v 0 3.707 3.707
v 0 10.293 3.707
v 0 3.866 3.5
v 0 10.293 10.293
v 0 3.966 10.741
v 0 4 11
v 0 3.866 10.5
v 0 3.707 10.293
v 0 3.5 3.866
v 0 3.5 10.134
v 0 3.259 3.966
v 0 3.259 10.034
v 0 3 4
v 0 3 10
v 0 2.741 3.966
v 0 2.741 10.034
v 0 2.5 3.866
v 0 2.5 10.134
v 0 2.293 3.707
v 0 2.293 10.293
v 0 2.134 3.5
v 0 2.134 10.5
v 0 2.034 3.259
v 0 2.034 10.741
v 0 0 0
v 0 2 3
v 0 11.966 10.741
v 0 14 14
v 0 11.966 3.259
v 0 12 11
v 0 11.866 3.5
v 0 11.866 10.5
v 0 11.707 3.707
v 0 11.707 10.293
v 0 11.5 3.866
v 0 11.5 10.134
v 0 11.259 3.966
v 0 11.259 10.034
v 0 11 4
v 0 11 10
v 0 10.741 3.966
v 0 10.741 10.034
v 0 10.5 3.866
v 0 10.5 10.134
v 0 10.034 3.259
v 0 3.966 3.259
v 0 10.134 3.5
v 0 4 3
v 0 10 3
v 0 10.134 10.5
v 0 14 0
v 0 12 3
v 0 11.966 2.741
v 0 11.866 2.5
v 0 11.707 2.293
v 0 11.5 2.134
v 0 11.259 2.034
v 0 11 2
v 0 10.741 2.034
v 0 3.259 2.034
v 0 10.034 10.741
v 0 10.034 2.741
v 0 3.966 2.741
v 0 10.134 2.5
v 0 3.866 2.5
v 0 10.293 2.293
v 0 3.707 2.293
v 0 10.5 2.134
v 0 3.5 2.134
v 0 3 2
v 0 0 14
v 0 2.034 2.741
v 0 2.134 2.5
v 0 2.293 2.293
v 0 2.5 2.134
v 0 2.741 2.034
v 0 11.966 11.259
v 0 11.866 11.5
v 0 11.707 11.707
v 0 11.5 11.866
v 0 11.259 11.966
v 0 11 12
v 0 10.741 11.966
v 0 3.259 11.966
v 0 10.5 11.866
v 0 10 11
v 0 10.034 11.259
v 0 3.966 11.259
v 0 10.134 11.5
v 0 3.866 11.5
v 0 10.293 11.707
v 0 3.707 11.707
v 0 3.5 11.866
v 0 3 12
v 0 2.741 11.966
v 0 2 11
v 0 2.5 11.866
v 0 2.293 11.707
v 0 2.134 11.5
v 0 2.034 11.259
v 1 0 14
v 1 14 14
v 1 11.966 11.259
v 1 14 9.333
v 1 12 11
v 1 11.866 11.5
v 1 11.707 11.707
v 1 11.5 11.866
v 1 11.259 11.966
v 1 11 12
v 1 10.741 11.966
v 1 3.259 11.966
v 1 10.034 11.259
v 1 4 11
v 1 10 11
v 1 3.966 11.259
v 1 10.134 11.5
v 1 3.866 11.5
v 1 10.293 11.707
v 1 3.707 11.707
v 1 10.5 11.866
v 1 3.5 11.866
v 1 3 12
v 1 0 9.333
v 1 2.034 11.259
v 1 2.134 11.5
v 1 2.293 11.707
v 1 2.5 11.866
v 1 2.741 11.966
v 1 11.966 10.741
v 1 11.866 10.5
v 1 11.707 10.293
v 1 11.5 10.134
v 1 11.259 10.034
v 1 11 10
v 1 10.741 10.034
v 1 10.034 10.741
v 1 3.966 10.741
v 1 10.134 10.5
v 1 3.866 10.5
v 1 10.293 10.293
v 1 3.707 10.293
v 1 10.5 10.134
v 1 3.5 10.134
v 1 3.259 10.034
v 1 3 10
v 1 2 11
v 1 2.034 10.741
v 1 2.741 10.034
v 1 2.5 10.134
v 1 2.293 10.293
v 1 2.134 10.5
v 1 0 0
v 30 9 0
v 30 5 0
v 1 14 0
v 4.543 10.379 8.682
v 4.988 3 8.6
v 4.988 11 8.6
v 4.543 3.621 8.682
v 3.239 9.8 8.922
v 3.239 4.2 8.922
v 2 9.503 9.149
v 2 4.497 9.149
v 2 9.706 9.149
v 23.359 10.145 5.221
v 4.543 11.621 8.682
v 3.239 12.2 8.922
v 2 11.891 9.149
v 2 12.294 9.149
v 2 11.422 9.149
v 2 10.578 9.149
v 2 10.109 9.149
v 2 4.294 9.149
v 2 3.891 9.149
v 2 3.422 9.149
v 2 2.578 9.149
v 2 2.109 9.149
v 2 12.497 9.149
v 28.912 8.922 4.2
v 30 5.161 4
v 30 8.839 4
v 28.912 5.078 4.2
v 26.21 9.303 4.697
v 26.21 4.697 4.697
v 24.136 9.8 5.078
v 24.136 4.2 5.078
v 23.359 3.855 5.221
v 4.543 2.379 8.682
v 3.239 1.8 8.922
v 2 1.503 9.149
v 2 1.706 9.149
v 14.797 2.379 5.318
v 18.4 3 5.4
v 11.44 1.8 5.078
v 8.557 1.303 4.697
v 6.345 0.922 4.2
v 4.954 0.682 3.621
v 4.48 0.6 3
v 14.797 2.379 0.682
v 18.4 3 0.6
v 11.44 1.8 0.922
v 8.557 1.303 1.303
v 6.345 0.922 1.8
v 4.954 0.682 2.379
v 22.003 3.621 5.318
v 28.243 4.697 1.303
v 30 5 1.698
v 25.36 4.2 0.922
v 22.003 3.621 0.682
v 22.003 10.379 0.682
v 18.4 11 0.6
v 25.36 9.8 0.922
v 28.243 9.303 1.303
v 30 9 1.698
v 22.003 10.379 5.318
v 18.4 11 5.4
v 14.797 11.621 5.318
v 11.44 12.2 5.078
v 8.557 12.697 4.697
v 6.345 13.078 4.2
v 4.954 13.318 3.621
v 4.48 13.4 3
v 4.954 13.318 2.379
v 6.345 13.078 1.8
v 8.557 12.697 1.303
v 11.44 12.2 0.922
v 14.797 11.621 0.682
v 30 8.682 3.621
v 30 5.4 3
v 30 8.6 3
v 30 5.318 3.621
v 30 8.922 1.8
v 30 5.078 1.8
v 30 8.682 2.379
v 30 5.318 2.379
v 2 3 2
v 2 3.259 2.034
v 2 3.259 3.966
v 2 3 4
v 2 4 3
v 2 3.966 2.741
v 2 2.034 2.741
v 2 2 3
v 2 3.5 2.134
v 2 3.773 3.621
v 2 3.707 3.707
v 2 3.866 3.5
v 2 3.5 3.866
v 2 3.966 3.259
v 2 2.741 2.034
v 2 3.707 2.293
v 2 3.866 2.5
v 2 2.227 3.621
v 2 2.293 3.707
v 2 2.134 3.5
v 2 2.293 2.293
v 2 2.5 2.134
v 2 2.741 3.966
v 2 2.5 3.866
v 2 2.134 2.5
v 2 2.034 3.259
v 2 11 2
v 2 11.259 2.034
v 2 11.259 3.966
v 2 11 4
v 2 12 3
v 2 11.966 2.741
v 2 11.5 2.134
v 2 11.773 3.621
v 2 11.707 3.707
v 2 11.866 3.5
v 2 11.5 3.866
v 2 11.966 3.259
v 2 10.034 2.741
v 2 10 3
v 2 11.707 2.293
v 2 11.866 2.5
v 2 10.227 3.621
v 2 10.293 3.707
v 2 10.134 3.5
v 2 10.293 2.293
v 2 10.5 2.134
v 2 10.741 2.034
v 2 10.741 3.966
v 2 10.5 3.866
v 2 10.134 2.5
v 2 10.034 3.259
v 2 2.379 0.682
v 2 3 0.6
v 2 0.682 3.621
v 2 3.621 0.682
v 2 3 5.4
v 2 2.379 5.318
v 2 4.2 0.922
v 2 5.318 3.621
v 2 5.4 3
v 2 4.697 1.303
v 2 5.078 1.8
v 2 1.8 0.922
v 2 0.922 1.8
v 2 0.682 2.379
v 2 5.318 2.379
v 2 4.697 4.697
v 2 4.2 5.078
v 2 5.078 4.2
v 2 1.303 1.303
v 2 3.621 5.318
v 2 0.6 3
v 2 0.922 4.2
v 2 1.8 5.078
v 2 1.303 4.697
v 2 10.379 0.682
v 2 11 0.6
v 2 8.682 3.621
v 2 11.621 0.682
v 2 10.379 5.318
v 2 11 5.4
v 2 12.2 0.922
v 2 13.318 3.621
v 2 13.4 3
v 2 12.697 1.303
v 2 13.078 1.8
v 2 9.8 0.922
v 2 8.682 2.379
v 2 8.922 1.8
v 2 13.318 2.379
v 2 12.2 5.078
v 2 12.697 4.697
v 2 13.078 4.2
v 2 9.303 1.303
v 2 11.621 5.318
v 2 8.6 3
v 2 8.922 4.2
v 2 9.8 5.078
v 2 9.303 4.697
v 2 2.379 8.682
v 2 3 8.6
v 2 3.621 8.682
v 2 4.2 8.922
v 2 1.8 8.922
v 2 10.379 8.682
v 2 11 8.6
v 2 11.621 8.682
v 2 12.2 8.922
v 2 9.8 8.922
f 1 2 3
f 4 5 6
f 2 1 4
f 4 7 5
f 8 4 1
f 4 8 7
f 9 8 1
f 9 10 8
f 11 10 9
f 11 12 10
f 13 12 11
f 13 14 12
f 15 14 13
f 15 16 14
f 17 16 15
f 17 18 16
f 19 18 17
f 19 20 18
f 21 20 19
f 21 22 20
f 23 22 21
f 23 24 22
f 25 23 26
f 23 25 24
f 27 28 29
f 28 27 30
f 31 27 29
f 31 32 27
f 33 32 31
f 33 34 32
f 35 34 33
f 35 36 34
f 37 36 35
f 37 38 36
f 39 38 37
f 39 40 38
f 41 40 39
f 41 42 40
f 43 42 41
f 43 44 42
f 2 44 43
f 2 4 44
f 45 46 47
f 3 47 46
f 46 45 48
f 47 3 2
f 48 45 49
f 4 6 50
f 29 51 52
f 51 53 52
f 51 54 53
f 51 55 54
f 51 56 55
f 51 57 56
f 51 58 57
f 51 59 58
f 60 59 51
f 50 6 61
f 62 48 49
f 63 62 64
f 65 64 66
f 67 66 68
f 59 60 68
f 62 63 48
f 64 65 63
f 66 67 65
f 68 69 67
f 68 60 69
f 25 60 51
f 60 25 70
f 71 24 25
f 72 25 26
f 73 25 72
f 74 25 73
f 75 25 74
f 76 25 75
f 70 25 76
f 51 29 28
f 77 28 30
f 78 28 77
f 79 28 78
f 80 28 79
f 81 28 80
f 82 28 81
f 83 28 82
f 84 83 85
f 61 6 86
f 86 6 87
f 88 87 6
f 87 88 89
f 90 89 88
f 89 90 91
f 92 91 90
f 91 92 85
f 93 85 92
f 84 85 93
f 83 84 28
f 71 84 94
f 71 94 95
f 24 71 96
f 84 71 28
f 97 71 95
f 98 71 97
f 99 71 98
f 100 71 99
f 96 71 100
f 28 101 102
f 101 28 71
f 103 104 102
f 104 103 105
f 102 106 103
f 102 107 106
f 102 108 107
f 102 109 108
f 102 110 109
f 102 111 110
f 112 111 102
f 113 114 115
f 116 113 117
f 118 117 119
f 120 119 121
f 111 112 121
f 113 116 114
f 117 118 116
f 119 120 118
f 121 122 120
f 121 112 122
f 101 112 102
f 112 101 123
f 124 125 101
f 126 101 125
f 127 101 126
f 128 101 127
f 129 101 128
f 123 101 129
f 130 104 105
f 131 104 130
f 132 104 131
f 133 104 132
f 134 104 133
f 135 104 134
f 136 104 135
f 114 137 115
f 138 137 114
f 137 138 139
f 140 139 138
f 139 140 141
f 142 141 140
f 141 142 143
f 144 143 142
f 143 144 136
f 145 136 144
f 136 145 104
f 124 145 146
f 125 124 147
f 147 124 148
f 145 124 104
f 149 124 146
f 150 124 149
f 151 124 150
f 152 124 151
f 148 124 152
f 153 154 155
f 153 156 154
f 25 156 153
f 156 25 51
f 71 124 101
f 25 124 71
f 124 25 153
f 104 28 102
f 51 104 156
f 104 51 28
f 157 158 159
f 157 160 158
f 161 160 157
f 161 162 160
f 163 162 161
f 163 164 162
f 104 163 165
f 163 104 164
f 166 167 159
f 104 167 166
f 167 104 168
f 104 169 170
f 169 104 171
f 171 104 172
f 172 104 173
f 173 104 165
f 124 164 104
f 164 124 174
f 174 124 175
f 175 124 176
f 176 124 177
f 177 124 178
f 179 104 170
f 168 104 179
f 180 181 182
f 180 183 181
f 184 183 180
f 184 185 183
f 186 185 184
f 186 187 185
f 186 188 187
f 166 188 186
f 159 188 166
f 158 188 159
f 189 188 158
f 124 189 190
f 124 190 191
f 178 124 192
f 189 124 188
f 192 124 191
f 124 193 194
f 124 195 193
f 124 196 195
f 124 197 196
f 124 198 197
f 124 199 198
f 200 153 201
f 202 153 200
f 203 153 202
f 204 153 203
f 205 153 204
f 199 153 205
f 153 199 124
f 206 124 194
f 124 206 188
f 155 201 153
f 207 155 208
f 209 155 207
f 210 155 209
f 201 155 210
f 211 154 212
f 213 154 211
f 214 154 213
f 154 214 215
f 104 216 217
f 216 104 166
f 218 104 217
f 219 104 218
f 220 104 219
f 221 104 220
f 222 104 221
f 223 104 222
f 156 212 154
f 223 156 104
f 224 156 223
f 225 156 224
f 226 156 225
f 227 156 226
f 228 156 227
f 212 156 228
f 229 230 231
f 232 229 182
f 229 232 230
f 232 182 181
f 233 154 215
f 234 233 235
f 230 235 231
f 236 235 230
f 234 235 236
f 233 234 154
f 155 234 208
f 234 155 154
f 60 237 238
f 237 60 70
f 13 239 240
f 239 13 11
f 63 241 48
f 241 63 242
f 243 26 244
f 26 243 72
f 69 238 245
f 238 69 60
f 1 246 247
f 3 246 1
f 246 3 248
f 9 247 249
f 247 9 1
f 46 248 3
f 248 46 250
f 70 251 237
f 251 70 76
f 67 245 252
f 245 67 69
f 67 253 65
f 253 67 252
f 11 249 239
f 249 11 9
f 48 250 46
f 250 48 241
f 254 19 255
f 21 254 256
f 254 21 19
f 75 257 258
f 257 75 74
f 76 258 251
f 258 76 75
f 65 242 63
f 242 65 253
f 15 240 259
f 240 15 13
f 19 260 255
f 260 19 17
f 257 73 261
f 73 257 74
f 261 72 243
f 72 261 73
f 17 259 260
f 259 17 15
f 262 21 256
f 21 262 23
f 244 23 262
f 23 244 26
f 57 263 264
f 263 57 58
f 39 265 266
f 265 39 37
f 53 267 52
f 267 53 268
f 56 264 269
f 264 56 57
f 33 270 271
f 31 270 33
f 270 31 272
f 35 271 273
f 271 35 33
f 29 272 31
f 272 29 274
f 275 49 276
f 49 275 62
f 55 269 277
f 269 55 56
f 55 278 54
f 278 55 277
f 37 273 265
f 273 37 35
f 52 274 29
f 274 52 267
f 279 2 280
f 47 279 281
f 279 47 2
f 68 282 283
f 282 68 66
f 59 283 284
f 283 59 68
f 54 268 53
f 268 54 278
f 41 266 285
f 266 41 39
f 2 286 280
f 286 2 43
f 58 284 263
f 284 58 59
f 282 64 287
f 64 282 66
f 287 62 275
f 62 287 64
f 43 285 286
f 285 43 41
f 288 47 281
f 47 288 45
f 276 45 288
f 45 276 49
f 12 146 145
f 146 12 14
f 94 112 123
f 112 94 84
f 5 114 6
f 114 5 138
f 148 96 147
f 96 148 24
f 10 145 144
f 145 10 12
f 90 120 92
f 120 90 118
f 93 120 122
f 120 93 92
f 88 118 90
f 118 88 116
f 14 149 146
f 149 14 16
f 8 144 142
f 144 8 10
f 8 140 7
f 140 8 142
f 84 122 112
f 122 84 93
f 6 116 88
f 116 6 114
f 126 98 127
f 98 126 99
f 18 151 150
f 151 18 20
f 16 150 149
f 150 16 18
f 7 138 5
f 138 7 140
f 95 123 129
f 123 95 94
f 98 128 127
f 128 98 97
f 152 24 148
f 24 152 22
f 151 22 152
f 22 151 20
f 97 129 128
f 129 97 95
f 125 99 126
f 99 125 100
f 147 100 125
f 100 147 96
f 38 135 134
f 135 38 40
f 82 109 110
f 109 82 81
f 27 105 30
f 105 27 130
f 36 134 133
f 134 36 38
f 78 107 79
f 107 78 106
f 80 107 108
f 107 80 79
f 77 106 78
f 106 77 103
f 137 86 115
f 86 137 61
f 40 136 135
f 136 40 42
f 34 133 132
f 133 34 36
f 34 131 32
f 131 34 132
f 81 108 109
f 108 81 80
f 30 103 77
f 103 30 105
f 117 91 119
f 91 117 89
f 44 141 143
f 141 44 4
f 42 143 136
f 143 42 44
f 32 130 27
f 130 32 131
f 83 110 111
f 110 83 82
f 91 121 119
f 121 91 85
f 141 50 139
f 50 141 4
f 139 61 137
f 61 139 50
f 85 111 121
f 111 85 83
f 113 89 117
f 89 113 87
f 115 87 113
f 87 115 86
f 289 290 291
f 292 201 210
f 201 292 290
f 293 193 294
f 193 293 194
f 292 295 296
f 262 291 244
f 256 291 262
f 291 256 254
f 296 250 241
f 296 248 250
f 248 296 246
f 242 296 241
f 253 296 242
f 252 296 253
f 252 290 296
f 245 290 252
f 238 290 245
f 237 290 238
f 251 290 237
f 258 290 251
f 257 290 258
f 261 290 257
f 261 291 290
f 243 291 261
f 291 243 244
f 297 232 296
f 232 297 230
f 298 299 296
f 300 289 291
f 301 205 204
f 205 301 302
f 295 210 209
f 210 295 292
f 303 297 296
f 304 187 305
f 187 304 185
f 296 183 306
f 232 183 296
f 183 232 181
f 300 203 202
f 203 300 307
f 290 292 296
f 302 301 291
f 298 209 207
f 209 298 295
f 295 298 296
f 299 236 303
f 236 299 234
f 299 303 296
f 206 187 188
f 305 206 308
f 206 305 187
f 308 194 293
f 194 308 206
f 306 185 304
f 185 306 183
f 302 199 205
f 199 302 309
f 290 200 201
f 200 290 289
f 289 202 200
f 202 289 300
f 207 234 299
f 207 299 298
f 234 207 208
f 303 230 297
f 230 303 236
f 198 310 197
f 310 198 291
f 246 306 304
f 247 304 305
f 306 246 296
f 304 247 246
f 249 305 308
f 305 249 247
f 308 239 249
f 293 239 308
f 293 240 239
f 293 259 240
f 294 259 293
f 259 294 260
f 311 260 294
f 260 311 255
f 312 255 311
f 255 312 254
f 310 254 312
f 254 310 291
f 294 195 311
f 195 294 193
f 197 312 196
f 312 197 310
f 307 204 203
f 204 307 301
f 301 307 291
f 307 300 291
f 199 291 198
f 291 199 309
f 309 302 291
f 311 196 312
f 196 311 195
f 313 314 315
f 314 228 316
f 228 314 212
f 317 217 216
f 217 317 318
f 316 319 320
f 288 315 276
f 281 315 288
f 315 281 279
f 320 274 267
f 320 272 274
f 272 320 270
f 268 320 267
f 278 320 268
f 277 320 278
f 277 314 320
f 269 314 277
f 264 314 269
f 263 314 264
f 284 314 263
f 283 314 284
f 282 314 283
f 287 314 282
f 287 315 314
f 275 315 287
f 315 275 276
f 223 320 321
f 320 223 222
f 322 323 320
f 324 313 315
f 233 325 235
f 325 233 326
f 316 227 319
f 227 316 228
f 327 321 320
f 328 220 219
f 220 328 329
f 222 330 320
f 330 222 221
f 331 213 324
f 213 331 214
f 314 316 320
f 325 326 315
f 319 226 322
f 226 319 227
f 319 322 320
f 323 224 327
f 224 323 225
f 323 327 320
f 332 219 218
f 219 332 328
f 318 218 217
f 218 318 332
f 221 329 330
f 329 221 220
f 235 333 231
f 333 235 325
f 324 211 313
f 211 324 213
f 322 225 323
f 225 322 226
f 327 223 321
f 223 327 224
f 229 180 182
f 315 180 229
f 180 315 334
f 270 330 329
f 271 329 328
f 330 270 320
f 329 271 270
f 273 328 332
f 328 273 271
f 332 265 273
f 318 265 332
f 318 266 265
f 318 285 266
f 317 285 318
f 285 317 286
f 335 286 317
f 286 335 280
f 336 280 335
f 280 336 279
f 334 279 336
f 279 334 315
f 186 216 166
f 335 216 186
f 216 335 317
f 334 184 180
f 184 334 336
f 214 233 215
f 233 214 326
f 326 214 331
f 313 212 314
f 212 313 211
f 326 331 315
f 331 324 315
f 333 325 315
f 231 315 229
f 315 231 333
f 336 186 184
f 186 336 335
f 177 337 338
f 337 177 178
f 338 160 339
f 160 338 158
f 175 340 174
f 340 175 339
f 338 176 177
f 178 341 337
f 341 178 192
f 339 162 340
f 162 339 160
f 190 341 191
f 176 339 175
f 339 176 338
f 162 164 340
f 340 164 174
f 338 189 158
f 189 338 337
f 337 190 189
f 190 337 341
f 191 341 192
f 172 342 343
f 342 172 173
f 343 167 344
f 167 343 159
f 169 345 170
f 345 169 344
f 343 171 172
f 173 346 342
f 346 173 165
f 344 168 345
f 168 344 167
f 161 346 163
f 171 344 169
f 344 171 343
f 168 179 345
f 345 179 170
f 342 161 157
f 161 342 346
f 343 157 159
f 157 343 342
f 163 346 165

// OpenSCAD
// file: servo_9g.scad
//servo_9g(false);

//use<hub_mount.scad>
use<MCAD/nuts_and_bolts.scad>
$fn = 24;
//x,y,z => l,w,h
servo_l         = 12;
servo_w         = 23;
body_h          = 23;

servo_h         = 27; //not used in code

wing_w          = 5;
wing_h          = 2.33;
wing_place      = 16.2;   
hole_offset     = 2.5;    //not checked
mount_hole_r    = 2/2;
mount_slot      = 1;

servo_ww        = servo_w+wing_w*2; // not used in code but is handy number

hub_h           = 4;
small_hub_r     = 5.68/2;  
horn_r          = 4.66/2;
horn_h          = 3;

wire_l          = 4;
wire_w          = 1.5;
wire_h          = 1;
wire_place      = 4.8;

servo_full_w    = servo_w+wing_w*2;
module servo_9g(hole=true) {
    //if a differnce is applied and you want 
    if(!hole) {
        translate([servo_l/2,-hole_offset,-10]) 
        cylinder(r=mount_hole_r,h=40);
        translate([servo_l/2,hole_offset+servo_w,-10]) 
        cylinder(r=mount_hole_r,h=40);
        /*translate([servo_l/2,servo_l/2,-15])
        cylinder(r=1.5,h=15);*/
        
        /*translate([servo_l/2,servo_l/2,body_h+hub_h+5])
        #hub_mount();*/
    }
    color("white") translate([servo_l/2,servo_l/2,body_h+hub_h])
    cylinder(r=horn_r,h=horn_h);
    
    color("deepSkyBlue",.7) 
    union() {
        cube([servo_l,servo_w,body_h]);
        translate([servo_l/2,servo_l/2,body_h])
        cylinder(r=servo_l/2,h=hub_h);
        translate([servo_l/2,servo_l+small_hub_r/2,body_h])
        cylinder(r=small_hub_r,h=hub_h);
        
        
        translate([0,servo_w,wing_place])
        difference() {
            cube([servo_l,wing_w,wing_h]);
            translate([servo_l/2,hole_offset,0]) 
            cylinder(r=mount_hole_r,h=5);
            translate([servo_l/2-mount_slot/2,hole_offset+mount_hole_r/2,0])
            if(hole) cube([mount_slot,4,3]);
        }
        translate([servo_l,0,wing_place])
        rotate([0,0,180])
        difference() {
            cube([servo_l,wing_w,wing_h]);
            translate([servo_l/2,hole_offset,0]) 
            cylinder(r=mount_hole_r,h=5);
            translate([servo_l/2-mount_slot/2,hole_offset+mount_hole_r/2,0])
            if(hole) cube([mount_slot,4,3]);
        }
    }
    
    /*color("brown") translate([(servo_l-wire_l)/2,-wire_w,wire_place])
    cube([wire_l,wire_w,wire_h]);*/
}
// main file
include<servo_9g.scad>

mount_y = servo_l+2;

foot_x = 30;
foot_y = 4;
foot_z = 4;

difference()
{
	union() 
	{
		cube([1,mount_y,mount_y]);
		hull()
		{
			cube([1,mount_y,mount_y*2/3]);
			
			translate([foot_x/2,mount_y/2, foot_z/2])
				cube([foot_x, foot_y, foot_z], center = true);
		}
	}

	translate([-1,3,3])
    rotate([0,90,0])
    cylinder(r=1, h=50);
    translate([-1,mount_y-3,3])
    rotate([0,90,0])
    cylinder(r=1, h=50);
    translate([-1,3,3+8])
    rotate([0,90,0])
    cylinder(r=1, h=50);
    translate([-1,mount_y-3,3+8])
    rotate([0,90,0])
    cylinder(r=1, h=50);
	
	rrr = 2.4;
	translate([2,3,3])
    rotate([0,90,0])
    cylinder(r=rrr, h=50);
    translate([2,mount_y-3,3])
    rotate([0,90,0])
    cylinder(r=rrr, h=50);
    translate([2,3,3+8])
    rotate([0,90,0])
    cylinder(r=rrr, h=50);
    translate([2,mount_y-3,3+8])
    rotate([0,90,0])
    cylinder(r=rrr, h=50);
	
}
